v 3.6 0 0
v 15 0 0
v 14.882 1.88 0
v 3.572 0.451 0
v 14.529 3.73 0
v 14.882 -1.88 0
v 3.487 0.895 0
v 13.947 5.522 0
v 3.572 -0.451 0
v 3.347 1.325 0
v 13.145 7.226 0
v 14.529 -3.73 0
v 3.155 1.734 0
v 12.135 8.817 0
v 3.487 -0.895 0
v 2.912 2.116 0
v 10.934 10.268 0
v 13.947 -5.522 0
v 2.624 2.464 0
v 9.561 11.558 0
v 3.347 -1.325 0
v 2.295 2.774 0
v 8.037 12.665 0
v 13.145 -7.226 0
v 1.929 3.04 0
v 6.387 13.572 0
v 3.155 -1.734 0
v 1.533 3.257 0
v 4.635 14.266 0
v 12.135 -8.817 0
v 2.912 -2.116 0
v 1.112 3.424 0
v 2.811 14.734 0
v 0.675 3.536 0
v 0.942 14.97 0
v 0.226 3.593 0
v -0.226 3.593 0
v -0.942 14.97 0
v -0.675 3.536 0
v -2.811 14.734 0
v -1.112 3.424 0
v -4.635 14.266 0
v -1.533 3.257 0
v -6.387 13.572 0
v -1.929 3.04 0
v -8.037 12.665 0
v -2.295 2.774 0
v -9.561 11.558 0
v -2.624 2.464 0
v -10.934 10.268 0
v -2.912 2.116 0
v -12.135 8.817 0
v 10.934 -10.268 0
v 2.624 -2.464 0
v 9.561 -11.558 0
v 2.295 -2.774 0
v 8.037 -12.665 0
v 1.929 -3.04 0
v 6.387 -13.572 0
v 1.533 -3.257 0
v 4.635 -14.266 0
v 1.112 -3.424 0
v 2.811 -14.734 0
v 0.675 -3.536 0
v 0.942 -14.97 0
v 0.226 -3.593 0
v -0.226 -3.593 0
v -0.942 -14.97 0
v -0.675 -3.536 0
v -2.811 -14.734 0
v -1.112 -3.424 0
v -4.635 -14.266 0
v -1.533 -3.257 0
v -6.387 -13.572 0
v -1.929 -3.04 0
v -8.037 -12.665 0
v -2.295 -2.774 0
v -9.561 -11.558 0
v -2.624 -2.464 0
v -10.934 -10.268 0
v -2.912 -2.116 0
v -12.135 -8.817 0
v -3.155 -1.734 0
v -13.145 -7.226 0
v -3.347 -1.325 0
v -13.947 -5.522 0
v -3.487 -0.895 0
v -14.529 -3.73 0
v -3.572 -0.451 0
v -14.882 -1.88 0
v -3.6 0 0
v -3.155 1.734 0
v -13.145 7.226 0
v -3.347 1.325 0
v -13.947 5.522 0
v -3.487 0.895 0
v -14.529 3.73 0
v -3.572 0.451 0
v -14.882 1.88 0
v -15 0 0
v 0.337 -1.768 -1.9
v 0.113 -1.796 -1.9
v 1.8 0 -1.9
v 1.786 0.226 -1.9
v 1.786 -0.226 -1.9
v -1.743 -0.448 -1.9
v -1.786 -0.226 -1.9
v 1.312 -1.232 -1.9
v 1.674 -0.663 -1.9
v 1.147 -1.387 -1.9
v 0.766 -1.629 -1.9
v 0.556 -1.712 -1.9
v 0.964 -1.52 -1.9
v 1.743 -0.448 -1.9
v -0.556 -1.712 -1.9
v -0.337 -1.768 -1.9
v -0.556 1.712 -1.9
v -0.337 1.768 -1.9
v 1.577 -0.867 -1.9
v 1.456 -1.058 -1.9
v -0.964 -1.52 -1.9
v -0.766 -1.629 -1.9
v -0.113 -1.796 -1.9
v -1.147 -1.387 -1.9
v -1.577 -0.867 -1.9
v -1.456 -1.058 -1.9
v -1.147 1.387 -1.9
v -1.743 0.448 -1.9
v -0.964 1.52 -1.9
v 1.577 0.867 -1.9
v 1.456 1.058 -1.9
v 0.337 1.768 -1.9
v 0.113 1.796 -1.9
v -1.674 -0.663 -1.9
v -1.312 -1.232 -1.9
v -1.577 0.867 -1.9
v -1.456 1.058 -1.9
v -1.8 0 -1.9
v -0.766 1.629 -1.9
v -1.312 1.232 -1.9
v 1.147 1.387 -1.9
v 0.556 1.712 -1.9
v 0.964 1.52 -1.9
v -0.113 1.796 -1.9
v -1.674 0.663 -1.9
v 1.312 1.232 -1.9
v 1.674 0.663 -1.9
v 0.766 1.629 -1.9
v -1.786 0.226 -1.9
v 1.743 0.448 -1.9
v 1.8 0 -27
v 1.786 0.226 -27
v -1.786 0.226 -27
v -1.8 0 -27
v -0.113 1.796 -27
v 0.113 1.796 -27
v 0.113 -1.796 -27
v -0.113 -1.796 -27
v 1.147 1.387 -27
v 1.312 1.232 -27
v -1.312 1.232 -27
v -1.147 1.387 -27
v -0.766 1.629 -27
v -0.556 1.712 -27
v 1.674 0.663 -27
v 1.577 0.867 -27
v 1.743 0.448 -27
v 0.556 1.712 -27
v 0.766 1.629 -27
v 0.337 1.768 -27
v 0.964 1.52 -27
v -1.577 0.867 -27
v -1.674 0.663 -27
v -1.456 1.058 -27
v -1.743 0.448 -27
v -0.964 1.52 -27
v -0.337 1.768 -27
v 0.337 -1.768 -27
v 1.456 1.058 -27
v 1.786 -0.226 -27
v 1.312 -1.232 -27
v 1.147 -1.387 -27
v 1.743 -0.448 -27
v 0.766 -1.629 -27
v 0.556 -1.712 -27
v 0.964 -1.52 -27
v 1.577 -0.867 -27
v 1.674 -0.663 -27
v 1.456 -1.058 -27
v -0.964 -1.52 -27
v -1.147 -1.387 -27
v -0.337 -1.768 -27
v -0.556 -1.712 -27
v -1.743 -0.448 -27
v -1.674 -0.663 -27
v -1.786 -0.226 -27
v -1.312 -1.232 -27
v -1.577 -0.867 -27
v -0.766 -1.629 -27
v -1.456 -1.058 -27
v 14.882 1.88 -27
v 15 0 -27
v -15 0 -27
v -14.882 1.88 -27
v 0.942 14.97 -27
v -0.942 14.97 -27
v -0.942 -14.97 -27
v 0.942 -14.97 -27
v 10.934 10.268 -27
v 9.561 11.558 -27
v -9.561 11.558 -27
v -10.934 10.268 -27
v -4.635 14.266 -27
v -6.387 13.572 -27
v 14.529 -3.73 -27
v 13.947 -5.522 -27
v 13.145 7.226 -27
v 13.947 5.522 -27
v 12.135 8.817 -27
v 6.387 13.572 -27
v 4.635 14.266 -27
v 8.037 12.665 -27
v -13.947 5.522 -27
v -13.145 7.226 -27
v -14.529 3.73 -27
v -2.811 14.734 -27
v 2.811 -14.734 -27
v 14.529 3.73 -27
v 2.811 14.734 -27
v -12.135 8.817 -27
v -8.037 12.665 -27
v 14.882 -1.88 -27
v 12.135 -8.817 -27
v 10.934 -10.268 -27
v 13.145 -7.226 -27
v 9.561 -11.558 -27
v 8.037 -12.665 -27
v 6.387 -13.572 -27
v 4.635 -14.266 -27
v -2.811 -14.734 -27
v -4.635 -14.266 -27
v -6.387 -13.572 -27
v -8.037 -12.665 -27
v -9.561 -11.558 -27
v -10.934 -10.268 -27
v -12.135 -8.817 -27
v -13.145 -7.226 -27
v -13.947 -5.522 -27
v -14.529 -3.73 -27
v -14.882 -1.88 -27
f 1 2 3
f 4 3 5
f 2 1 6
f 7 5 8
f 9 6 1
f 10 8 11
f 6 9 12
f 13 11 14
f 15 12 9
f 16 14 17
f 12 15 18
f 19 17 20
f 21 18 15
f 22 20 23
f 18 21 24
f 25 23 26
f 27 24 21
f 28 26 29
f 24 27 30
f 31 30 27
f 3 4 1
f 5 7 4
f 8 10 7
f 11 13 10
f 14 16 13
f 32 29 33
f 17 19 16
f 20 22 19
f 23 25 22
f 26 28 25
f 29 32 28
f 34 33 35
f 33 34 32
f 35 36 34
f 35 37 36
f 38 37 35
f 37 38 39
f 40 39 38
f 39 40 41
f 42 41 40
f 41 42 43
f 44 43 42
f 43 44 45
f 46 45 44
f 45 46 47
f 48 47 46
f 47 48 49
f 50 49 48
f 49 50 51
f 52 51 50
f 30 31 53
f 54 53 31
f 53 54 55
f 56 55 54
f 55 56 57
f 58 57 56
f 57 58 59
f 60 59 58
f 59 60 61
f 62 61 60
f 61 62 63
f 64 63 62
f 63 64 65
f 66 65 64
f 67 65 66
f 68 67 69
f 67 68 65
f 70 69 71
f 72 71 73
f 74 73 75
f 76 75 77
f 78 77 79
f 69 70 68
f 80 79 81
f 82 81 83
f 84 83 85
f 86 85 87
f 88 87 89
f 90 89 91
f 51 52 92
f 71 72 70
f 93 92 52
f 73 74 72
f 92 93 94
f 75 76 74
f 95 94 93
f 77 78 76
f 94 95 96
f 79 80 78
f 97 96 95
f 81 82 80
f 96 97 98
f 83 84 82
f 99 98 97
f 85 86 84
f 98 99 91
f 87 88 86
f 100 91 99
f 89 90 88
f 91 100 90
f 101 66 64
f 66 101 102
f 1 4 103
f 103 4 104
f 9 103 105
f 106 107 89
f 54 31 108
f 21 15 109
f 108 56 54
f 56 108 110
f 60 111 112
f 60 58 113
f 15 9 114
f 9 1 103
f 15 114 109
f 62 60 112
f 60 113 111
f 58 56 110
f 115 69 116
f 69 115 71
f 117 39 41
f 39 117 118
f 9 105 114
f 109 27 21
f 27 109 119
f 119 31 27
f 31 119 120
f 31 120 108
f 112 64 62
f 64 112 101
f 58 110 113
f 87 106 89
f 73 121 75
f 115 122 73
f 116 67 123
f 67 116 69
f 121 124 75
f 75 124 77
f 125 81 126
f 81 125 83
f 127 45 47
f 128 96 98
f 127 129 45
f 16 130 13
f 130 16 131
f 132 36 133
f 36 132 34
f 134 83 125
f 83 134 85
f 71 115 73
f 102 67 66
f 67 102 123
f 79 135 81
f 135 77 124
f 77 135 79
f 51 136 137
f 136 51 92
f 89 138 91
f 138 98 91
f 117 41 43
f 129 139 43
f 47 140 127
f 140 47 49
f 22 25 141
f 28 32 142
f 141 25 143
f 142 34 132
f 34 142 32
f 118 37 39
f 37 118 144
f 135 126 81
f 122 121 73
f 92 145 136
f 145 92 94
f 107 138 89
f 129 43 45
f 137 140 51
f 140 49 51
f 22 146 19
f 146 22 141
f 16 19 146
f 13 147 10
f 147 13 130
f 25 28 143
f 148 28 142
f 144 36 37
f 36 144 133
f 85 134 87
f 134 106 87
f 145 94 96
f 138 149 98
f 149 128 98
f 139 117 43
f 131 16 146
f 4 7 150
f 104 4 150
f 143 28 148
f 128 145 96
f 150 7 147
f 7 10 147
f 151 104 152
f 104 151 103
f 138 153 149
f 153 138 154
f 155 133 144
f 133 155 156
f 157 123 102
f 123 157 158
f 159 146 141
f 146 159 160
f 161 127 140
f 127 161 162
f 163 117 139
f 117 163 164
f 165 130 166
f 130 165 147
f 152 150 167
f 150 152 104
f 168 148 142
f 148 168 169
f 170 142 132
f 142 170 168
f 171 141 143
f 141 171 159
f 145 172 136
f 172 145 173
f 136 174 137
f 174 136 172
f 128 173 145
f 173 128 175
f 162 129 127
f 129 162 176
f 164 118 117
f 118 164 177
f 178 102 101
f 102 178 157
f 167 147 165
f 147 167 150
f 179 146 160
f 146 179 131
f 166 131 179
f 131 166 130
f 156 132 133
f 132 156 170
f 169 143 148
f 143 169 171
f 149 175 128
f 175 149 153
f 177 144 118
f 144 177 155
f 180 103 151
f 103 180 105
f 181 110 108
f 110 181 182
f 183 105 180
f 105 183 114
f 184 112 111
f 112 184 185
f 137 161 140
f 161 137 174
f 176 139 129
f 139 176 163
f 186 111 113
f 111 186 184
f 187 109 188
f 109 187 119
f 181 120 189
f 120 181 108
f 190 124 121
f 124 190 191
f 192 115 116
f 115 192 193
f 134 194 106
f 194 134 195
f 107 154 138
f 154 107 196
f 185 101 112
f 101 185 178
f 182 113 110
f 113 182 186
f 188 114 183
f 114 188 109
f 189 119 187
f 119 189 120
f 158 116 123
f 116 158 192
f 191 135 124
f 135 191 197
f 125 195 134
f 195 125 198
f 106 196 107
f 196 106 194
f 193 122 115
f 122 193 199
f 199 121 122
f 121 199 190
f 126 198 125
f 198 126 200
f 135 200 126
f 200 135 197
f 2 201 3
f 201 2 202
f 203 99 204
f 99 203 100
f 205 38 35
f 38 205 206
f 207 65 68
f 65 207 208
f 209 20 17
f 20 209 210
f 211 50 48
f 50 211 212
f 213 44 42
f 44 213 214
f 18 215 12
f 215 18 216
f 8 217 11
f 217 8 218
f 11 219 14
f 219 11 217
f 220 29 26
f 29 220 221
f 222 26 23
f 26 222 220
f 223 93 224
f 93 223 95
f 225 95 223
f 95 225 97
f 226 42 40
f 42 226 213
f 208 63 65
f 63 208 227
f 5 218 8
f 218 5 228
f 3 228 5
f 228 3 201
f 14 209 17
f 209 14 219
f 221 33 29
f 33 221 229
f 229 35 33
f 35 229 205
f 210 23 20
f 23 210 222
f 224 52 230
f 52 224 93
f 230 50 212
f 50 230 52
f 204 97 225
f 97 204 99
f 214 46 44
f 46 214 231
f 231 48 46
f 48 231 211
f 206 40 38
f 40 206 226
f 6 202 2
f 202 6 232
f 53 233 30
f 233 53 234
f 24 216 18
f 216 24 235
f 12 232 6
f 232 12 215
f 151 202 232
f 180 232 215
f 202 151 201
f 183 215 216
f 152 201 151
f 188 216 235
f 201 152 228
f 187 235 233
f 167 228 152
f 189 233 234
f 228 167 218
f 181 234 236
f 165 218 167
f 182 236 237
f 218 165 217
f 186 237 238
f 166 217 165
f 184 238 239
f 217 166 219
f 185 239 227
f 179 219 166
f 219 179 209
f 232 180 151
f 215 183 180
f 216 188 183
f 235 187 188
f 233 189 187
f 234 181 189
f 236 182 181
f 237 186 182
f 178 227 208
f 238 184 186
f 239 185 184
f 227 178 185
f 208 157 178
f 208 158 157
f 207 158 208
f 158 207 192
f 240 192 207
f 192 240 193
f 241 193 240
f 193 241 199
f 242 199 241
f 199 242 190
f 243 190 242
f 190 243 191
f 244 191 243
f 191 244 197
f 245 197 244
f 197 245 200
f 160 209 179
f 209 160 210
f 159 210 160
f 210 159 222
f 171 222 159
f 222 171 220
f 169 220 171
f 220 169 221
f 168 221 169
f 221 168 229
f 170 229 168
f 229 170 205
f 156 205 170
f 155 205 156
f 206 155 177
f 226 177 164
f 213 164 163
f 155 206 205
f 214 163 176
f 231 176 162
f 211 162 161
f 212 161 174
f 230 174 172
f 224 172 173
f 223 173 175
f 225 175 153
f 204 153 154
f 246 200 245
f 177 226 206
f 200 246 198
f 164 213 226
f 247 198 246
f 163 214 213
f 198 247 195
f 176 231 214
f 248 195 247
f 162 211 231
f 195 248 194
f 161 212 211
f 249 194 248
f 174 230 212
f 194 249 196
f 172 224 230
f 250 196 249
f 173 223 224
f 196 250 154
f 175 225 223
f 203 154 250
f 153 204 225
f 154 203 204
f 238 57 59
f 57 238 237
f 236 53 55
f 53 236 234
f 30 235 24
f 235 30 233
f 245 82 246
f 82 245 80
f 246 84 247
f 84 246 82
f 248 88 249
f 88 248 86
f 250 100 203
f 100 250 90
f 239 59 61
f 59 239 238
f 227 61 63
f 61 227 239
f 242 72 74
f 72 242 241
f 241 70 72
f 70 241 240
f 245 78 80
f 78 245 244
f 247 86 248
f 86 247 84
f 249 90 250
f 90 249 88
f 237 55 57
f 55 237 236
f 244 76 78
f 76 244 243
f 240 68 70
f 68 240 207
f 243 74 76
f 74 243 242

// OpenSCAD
$fn = 50;


difference() {
	union() {
		translate(v = [0, 0, -27.0000000000]) {
			cylinder(h = 27, r = 15.0000000000);
		}
	}
	union() {
		translate(v = [0, 0, 0]) {
			rotate(a = [0, 0, 0]) {
				difference() {
					union() {
						translate(v = [0, 0, -30.0000000000]) {
							cylinder(h = 30, r = 1.5000000000);
						}
						translate(v = [0, 0, -1.9000000000]) {
							cylinder(h = 1.9000000000, r1 = 1.8000000000, r2 = 3.6000000000);
						}
						translate(v = [0, 0, -30.0000000000]) {
							cylinder(h = 30, r = 1.8000000000);
						}
						translate(v = [0, 0, -30.0000000000]) {
							cylinder(h = 30, r = 1.5000000000);
						}
					}
					union();
				}
			}
		}
	}
}
